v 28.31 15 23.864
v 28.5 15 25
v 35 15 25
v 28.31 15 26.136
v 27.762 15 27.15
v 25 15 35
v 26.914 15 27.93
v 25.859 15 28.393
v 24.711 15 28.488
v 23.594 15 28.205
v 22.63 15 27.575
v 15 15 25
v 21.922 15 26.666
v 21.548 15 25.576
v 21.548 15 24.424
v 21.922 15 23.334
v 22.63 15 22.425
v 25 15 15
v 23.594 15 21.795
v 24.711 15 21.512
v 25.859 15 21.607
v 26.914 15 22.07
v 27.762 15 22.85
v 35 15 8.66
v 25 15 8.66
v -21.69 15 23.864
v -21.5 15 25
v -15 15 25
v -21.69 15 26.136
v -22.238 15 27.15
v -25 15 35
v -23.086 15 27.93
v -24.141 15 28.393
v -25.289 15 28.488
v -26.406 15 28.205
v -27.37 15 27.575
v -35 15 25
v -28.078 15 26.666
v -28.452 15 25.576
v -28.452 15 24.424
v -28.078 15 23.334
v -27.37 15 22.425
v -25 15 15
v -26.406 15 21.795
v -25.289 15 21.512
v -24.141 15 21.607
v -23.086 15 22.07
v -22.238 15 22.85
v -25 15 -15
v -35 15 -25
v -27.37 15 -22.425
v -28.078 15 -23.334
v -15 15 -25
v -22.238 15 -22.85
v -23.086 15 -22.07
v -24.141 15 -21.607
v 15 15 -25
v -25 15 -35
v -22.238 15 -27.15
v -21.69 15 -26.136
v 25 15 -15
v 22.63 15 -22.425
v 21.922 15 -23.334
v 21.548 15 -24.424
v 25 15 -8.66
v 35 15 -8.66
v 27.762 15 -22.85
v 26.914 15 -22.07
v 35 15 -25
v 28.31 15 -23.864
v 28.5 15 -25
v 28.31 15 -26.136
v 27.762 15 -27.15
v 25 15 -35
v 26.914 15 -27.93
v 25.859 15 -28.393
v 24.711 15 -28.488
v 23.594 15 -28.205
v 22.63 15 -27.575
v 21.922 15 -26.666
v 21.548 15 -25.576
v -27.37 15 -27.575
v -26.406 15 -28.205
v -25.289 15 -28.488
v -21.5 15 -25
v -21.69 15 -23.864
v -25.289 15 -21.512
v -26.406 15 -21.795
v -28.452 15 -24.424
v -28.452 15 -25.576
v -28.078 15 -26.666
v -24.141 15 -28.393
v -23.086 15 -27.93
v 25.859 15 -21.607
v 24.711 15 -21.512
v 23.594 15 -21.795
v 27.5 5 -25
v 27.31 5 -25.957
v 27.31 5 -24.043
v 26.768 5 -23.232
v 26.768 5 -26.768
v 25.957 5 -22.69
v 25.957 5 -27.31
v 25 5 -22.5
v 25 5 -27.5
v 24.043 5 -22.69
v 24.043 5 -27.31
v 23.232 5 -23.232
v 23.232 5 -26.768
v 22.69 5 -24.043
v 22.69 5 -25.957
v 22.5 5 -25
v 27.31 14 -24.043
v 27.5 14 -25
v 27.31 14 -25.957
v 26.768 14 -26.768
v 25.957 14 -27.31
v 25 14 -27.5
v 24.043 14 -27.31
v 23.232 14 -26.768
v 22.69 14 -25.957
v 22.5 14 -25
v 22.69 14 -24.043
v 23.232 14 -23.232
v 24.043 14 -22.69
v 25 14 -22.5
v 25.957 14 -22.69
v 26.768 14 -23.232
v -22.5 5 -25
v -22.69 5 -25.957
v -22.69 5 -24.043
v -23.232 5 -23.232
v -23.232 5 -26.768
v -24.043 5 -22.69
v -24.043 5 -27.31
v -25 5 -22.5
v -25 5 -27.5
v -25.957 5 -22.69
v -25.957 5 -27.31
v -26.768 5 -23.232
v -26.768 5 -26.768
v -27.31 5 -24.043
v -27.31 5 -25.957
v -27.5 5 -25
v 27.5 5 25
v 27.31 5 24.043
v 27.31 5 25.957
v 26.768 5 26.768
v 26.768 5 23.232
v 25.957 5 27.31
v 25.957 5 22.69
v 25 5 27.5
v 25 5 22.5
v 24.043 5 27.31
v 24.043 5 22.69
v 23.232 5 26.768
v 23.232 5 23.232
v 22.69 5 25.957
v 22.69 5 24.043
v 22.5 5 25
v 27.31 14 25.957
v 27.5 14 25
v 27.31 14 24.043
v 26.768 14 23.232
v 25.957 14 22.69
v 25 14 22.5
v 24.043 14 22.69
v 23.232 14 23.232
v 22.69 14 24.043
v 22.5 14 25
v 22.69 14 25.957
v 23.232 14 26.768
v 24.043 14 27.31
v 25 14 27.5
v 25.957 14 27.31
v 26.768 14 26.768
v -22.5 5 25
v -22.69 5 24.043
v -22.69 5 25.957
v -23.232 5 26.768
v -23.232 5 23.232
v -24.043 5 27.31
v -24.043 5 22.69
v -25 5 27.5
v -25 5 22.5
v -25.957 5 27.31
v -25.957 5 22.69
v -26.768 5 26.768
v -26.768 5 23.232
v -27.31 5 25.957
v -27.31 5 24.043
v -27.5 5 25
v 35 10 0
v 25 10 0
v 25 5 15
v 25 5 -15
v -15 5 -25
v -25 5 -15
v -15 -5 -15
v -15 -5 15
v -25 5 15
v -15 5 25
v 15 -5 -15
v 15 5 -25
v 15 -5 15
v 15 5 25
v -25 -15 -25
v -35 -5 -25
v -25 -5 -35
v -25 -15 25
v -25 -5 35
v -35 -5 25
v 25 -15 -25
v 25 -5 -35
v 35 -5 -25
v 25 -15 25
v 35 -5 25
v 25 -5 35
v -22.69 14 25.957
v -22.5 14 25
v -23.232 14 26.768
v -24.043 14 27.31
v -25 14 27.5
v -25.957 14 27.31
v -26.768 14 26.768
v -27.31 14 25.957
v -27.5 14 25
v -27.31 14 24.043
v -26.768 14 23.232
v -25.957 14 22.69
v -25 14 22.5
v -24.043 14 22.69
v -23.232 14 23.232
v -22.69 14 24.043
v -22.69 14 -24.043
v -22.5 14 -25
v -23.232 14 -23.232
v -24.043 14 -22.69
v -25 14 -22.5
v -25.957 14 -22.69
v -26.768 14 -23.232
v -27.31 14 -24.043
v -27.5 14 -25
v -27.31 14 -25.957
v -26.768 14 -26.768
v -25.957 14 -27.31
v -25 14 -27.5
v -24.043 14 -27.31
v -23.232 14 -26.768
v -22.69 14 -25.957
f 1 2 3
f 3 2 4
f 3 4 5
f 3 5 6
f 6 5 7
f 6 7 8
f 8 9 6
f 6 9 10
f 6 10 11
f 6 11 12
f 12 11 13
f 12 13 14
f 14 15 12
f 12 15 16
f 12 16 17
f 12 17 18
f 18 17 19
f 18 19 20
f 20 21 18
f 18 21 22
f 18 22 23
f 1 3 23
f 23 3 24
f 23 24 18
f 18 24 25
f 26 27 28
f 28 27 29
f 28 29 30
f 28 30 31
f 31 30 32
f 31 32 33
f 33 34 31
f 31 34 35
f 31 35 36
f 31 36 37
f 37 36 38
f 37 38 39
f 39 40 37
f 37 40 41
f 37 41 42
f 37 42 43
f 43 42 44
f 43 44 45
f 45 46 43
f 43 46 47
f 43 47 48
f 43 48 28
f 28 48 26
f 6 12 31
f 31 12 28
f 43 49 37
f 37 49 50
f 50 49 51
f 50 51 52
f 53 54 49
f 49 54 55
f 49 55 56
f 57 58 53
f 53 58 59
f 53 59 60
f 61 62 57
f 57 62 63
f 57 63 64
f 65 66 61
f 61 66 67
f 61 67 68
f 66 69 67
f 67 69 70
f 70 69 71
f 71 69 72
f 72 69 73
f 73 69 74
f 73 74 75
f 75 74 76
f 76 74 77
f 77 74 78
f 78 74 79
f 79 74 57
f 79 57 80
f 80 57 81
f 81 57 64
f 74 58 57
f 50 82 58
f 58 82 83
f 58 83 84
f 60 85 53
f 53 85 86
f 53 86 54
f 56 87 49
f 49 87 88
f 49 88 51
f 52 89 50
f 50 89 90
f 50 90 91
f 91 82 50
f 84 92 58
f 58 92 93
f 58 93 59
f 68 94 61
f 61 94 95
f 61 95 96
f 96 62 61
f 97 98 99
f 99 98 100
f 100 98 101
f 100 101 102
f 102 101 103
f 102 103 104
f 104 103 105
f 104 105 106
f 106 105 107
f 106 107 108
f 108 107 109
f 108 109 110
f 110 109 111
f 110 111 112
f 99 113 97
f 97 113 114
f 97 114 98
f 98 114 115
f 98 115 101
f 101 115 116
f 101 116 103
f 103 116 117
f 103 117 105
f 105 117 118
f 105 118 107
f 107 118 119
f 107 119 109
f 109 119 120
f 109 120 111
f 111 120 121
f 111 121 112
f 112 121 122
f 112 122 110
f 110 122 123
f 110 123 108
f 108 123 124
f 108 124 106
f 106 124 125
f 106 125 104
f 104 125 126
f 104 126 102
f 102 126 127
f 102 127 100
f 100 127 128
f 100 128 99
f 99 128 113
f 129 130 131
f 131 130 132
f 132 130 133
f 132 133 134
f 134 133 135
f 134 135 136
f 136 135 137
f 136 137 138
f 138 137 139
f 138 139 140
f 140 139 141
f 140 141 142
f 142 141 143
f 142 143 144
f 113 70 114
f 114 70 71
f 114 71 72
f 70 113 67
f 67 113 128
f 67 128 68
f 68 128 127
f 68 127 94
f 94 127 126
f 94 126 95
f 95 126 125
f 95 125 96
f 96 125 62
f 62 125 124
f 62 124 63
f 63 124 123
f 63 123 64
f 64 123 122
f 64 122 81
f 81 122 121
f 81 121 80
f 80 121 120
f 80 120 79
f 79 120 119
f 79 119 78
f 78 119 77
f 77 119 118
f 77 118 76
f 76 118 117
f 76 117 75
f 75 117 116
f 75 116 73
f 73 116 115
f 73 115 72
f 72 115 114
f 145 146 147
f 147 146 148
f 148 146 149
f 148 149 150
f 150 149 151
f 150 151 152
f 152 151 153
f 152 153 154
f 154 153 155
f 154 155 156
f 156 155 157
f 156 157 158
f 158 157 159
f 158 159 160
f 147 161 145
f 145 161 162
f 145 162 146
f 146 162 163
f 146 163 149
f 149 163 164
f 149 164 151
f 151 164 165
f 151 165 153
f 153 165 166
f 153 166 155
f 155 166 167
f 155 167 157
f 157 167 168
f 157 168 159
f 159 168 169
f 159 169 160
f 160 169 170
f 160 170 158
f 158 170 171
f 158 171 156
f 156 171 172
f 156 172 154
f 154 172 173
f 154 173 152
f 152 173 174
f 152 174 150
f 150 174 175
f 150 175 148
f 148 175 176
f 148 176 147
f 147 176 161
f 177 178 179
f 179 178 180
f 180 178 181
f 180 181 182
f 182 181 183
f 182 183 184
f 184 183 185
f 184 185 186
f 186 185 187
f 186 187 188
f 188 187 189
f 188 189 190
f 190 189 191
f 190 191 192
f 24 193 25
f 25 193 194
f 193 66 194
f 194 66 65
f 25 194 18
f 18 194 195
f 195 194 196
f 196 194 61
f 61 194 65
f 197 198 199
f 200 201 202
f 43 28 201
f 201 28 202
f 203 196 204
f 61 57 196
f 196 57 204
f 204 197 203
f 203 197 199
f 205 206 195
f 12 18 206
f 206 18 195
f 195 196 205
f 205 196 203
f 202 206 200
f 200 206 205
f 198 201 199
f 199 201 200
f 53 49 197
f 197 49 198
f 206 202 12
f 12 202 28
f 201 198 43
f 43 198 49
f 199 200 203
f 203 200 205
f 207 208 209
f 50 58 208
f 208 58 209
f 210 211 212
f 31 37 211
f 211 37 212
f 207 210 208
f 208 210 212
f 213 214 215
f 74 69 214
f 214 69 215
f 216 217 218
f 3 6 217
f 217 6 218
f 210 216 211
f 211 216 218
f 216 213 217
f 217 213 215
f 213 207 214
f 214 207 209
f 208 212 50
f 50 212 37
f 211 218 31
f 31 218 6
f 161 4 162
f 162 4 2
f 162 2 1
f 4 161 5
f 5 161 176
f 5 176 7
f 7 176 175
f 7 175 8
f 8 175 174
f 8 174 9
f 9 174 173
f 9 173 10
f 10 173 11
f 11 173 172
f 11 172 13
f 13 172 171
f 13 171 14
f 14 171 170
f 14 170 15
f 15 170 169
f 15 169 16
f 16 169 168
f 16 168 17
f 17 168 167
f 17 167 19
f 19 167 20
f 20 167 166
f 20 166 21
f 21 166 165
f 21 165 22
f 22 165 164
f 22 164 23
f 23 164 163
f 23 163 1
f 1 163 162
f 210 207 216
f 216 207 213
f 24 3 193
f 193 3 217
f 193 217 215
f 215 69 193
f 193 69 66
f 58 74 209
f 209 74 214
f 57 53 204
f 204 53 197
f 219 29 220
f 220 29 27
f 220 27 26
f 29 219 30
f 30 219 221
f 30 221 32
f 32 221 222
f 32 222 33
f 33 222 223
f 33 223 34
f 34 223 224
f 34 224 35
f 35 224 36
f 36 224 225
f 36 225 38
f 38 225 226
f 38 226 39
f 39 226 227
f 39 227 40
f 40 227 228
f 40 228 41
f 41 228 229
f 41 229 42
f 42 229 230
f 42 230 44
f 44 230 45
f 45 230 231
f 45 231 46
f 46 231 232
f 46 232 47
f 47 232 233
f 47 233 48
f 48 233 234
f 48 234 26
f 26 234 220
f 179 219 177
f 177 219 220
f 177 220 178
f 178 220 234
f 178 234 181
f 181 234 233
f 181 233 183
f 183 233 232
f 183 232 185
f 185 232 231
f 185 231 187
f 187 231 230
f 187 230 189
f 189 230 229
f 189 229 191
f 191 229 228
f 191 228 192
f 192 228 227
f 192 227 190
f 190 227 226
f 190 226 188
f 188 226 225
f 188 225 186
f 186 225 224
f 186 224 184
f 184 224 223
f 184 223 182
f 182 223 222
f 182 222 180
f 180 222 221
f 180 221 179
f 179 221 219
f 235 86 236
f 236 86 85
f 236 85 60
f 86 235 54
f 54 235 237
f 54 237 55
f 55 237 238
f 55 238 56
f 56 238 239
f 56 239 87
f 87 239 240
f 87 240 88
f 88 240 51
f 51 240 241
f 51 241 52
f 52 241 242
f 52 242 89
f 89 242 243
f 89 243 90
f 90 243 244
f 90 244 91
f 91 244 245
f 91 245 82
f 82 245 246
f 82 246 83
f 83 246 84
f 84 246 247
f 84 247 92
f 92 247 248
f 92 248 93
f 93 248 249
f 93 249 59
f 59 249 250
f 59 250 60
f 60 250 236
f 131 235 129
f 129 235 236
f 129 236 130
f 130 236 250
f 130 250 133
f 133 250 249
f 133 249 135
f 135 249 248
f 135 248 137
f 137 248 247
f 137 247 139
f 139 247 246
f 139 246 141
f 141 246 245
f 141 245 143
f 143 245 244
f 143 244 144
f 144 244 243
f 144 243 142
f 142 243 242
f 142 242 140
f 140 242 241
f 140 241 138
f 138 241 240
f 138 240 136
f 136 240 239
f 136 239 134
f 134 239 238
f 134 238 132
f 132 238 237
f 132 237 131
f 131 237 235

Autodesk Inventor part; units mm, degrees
ref_plane "YZ Plane" through (0, 0, 0) normal (1, 0, 0) x (0, 1, 0)
ref_plane "XZ Plane" through (0, 0, 0) normal (0, 1, 0) x (-1, 0, 0)
ref_plane "XY Plane" through (0, 0, 0) normal (0, 0, 1) x (1, 0, 0)
sketch "Sketch2" plane through (0, 0, 0) normal (0, 1, 0) x (-1, 0, 0)
  line L0 (25, -25) -> (-25, -25)
  line L1 (-25, -25) -> (-25, 25)
  line L2 (-25, 25) -> (25, 25)
  line L3 (25, 25) -> (25, -25)
  line L4 (25, -25) -> (-25, 25) construction
  line L5 (-25, -25) -> (25, 25) construction
  line L6 (35, 35) -> (-35, 35)
  line L7 (-35, 35) -> (-35, -35)
  line L8 (-35, -35) -> (35, -35)
  line L9 (35, -35) -> (35, 35)
  point P0 (0, 0)
  dimension "d0" = 50
  dimension "d1" = 10
  dimension "d19" = 50
extrude "Extrusion1" add sketch "Sketch2" along normal mid plane 30
sketch "Sketch3" plane through (0, -15, 0) normal (0, -1, 0) x (1, 0, 0)
  line L0 (35, -35) -> (35, 35) projected
  line L1 (35, 35) -> (-35, 35) projected
  line L2 (-35, 35) -> (-35, -35) projected
  line L3 (-35, -35) -> (35, -35) projected
  point P0 (0, 0)
extrude "Extrusion2" add sketch "Sketch3" against normal blind 10
chamfer "Chamfer1" distance 10 angle 45 16 edges at (35, 0, 35) (25, 5, 25) (-25, 5, 25) (-35, 0, 35) (-25, 5, -25) (25, 5, -25) (-35, 0, -35) (35, 0, -35) (0, -5, -25) (25, -5, 0) (0, -5, 25) (-25, -5, 0) (0, -15, -35) (35, -15, 0) (0, -15, 35) (-35, -15, 0)
sketch "Sketch4" plane through (35, -5, -25) normal (1, 0, 0) x (0, 0, -1)
  line L0 (0, 20) -> (0, 0) construction
  line L1 (-50, 20) -> (0, 20) construction
  line L2 (-16.3397, 30) -> (-16.3397, 20)
  line L3 (-16.3397, 20) -> (-25, 15)
  line L4 (-25, 15) -> (-33.6603, 20)
  line L5 (-33.6603, 20) -> (-33.6603, 30)
  line L6 (-33.6603, 30) -> (-25, 35)
  line L7 (-25, 35) -> (-16.3397, 30)
  point P0 (-25, 5)
  point P1 (-25, 25)
  dimension "d9" = 10
  dimension "d10" = 5
  dimension "d20" = 0
extrude "Extrusion3" cut sketch "Sketch4" against normal blind 10
sketch "Sketch5" plane through (0, 15, 0) normal (0, 1, 0) x (1, 0, 0)
  line L0 (-25, 25) -> (-25, 35) construction
  circle A0 centre (-25, 25) radius 2.5
  line L1 (25, 25) -> (35, 25) construction
  circle A1 centre (25, 25) radius 2.5
  line L2 (-25, -25) -> (-35, -25) construction
  circle A2 centre (-25, -25) radius 2.5
  line L3 (-25, -25) -> (25, -25) construction
  circle A3 centre (25, -25) radius 2.5
  point P0 (0, 0)
  dimension "d13" = 5
  dimension "d14" = 5
  dimension "d15" = 5
  dimension "d16" = 5
extrude "Extrusion4" cut sketch "Sketch5" against normal blind 10
chamfer "Chamfer2" distance 1 angle 45 4 edges at (-27.5, 15, 25) (-27.5, 15, -25) (22.5, 15, 25) (22.5, 15, -25)
properties part number "pokemon_ball_white"
